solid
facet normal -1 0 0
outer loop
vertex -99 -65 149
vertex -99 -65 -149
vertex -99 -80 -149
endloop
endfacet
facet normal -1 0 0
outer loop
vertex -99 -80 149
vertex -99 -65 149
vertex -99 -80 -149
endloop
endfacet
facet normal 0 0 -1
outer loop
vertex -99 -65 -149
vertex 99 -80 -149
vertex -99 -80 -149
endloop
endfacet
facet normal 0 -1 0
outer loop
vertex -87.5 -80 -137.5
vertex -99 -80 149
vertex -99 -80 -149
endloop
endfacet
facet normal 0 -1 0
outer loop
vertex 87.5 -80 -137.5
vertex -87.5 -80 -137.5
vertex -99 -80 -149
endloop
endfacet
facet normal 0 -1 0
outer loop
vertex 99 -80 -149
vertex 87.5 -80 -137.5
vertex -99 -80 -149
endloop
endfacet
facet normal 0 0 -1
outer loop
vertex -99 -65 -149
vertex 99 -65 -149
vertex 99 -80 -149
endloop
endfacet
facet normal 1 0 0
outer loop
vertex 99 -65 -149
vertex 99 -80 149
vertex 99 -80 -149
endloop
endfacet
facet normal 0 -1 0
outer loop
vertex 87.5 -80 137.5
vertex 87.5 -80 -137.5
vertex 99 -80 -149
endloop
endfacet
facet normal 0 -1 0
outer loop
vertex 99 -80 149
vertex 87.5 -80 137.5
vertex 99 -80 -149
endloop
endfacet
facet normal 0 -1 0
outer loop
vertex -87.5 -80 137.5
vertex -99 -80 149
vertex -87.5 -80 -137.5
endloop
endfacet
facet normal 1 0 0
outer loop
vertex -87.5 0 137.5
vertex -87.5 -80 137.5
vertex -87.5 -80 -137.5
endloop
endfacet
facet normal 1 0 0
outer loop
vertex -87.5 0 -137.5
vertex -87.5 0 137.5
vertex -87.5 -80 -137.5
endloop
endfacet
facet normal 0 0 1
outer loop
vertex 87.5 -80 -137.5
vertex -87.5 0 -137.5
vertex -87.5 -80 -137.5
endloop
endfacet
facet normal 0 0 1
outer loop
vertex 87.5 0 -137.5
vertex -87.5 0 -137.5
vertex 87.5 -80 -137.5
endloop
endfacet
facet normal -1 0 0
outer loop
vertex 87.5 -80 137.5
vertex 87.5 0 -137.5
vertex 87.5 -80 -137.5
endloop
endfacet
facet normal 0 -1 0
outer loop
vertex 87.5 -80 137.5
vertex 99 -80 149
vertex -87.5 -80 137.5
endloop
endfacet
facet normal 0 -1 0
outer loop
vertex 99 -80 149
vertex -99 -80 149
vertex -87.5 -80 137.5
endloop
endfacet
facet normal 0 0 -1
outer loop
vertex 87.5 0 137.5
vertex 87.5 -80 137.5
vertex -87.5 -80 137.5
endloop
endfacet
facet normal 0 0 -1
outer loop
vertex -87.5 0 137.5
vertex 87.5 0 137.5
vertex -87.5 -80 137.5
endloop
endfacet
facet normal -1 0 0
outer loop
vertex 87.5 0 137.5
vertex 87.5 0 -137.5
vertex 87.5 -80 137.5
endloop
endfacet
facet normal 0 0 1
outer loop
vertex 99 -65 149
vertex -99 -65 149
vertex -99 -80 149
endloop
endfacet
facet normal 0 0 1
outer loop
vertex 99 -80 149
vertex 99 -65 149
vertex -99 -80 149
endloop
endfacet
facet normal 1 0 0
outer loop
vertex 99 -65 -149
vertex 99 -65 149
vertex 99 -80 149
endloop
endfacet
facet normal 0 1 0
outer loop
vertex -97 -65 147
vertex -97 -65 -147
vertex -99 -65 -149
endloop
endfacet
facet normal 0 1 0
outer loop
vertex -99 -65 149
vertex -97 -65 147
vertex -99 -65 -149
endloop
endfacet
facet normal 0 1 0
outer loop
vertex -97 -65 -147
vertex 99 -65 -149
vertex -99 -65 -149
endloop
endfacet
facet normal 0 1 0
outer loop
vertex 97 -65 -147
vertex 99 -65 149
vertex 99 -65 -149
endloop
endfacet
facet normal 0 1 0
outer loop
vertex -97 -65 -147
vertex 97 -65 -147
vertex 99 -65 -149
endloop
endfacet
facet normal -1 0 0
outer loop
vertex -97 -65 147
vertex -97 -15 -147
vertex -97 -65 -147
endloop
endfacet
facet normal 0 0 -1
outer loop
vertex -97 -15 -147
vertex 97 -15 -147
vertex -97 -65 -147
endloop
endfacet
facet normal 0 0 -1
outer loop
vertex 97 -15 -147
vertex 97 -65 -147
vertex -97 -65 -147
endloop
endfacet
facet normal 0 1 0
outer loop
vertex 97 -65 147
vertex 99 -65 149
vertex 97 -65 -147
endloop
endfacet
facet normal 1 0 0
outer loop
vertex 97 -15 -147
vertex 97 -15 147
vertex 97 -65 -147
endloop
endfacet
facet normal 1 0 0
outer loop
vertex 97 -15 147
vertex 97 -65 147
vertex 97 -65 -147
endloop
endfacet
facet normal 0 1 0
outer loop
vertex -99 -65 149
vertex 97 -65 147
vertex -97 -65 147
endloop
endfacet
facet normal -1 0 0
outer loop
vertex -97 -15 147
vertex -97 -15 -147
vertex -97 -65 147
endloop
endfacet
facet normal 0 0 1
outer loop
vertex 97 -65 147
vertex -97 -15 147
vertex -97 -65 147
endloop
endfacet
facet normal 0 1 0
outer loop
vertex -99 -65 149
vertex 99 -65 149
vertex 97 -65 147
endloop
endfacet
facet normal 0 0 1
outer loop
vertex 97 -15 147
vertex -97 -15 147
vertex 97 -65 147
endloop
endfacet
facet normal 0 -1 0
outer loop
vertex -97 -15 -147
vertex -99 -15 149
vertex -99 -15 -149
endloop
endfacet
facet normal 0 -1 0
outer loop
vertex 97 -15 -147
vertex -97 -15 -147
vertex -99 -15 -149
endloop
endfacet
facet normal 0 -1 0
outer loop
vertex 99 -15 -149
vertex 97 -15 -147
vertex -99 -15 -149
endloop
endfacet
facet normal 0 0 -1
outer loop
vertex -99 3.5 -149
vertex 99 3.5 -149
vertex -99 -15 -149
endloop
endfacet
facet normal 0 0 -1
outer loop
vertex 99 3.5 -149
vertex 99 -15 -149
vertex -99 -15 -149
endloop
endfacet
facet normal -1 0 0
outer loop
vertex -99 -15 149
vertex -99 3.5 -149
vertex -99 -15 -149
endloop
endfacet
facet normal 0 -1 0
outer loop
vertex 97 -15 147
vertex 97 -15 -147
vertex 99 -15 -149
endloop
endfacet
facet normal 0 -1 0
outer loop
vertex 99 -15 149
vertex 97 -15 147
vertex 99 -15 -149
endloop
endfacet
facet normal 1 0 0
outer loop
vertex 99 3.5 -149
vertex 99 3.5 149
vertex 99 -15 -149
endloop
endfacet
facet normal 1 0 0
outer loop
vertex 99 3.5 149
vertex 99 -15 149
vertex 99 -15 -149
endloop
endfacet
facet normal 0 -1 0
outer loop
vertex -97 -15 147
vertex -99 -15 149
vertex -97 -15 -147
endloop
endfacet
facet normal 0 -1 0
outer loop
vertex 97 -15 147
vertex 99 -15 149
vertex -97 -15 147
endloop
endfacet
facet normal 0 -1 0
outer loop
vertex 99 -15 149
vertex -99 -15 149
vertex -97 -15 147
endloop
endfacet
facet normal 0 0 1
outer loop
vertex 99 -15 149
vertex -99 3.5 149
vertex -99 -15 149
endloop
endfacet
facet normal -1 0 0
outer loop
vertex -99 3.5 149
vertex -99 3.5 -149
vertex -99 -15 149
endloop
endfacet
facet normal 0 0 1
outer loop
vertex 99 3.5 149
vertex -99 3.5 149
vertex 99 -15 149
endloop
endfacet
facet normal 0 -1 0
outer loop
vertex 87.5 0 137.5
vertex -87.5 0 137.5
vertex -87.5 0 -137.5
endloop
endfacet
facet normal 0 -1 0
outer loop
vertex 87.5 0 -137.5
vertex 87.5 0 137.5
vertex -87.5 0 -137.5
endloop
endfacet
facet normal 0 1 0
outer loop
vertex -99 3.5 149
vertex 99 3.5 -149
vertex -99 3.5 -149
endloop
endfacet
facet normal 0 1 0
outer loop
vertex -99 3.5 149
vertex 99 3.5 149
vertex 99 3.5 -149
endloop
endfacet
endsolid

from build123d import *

# Parameters (mm, degrees)
SKETCH_1_W          = 198
SKETCH_1_H          = 298
SKETCH_1_W_2        = 175
SKETCH_1_H_2        = 275
EXTRUDE_1_DEPTH     = 80
SKETCH_2_W          = 198
SKETCH_2_H          = 298
EXTRUDE_2_DEPTH     = 3.5
SKETCH_3_W          = 200
SKETCH_3_H          = 300
SKETCH_3_W_2        = 194
SKETCH_3_H_2        = 294
CUT_EXTRUDE_1_DEPTH = 25


with BuildPart() as part:
    # 草图1 → 凸台-拉伸1 (new body)
    with BuildSketch(Plane(origin=(0, 0, 0), x_dir=(1, 0, 0), z_dir=(0, 1, 0))):
        Rectangle(SKETCH_1_W, SKETCH_1_H)
        Rectangle(SKETCH_1_W_2, SKETCH_1_H_2, mode=Mode.SUBTRACT)
    extrude(amount=-EXTRUDE_1_DEPTH)

    # 草图2 → 凸台-拉伸2 (add)
    with BuildSketch(Plane(origin=(0, 0, 0), x_dir=(1, 0, 0), z_dir=(0, 1, 0))):
        Rectangle(SKETCH_2_W, SKETCH_2_H)
    extrude(amount=EXTRUDE_2_DEPTH)

    # 草图3 → 切除-拉伸1 (cut, symmetric)
    with BuildSketch(Plane(origin=(0, -40, 0), x_dir=(-1, 0, 0), z_dir=(0, -1, 0))):
        Rectangle(SKETCH_3_W, SKETCH_3_H)
        Rectangle(SKETCH_3_W_2, SKETCH_3_H_2, mode=Mode.SUBTRACT)
    extrude(amount=CUT_EXTRUDE_1_DEPTH, both=True, mode=Mode.SUBTRACT)


solid = part.part
